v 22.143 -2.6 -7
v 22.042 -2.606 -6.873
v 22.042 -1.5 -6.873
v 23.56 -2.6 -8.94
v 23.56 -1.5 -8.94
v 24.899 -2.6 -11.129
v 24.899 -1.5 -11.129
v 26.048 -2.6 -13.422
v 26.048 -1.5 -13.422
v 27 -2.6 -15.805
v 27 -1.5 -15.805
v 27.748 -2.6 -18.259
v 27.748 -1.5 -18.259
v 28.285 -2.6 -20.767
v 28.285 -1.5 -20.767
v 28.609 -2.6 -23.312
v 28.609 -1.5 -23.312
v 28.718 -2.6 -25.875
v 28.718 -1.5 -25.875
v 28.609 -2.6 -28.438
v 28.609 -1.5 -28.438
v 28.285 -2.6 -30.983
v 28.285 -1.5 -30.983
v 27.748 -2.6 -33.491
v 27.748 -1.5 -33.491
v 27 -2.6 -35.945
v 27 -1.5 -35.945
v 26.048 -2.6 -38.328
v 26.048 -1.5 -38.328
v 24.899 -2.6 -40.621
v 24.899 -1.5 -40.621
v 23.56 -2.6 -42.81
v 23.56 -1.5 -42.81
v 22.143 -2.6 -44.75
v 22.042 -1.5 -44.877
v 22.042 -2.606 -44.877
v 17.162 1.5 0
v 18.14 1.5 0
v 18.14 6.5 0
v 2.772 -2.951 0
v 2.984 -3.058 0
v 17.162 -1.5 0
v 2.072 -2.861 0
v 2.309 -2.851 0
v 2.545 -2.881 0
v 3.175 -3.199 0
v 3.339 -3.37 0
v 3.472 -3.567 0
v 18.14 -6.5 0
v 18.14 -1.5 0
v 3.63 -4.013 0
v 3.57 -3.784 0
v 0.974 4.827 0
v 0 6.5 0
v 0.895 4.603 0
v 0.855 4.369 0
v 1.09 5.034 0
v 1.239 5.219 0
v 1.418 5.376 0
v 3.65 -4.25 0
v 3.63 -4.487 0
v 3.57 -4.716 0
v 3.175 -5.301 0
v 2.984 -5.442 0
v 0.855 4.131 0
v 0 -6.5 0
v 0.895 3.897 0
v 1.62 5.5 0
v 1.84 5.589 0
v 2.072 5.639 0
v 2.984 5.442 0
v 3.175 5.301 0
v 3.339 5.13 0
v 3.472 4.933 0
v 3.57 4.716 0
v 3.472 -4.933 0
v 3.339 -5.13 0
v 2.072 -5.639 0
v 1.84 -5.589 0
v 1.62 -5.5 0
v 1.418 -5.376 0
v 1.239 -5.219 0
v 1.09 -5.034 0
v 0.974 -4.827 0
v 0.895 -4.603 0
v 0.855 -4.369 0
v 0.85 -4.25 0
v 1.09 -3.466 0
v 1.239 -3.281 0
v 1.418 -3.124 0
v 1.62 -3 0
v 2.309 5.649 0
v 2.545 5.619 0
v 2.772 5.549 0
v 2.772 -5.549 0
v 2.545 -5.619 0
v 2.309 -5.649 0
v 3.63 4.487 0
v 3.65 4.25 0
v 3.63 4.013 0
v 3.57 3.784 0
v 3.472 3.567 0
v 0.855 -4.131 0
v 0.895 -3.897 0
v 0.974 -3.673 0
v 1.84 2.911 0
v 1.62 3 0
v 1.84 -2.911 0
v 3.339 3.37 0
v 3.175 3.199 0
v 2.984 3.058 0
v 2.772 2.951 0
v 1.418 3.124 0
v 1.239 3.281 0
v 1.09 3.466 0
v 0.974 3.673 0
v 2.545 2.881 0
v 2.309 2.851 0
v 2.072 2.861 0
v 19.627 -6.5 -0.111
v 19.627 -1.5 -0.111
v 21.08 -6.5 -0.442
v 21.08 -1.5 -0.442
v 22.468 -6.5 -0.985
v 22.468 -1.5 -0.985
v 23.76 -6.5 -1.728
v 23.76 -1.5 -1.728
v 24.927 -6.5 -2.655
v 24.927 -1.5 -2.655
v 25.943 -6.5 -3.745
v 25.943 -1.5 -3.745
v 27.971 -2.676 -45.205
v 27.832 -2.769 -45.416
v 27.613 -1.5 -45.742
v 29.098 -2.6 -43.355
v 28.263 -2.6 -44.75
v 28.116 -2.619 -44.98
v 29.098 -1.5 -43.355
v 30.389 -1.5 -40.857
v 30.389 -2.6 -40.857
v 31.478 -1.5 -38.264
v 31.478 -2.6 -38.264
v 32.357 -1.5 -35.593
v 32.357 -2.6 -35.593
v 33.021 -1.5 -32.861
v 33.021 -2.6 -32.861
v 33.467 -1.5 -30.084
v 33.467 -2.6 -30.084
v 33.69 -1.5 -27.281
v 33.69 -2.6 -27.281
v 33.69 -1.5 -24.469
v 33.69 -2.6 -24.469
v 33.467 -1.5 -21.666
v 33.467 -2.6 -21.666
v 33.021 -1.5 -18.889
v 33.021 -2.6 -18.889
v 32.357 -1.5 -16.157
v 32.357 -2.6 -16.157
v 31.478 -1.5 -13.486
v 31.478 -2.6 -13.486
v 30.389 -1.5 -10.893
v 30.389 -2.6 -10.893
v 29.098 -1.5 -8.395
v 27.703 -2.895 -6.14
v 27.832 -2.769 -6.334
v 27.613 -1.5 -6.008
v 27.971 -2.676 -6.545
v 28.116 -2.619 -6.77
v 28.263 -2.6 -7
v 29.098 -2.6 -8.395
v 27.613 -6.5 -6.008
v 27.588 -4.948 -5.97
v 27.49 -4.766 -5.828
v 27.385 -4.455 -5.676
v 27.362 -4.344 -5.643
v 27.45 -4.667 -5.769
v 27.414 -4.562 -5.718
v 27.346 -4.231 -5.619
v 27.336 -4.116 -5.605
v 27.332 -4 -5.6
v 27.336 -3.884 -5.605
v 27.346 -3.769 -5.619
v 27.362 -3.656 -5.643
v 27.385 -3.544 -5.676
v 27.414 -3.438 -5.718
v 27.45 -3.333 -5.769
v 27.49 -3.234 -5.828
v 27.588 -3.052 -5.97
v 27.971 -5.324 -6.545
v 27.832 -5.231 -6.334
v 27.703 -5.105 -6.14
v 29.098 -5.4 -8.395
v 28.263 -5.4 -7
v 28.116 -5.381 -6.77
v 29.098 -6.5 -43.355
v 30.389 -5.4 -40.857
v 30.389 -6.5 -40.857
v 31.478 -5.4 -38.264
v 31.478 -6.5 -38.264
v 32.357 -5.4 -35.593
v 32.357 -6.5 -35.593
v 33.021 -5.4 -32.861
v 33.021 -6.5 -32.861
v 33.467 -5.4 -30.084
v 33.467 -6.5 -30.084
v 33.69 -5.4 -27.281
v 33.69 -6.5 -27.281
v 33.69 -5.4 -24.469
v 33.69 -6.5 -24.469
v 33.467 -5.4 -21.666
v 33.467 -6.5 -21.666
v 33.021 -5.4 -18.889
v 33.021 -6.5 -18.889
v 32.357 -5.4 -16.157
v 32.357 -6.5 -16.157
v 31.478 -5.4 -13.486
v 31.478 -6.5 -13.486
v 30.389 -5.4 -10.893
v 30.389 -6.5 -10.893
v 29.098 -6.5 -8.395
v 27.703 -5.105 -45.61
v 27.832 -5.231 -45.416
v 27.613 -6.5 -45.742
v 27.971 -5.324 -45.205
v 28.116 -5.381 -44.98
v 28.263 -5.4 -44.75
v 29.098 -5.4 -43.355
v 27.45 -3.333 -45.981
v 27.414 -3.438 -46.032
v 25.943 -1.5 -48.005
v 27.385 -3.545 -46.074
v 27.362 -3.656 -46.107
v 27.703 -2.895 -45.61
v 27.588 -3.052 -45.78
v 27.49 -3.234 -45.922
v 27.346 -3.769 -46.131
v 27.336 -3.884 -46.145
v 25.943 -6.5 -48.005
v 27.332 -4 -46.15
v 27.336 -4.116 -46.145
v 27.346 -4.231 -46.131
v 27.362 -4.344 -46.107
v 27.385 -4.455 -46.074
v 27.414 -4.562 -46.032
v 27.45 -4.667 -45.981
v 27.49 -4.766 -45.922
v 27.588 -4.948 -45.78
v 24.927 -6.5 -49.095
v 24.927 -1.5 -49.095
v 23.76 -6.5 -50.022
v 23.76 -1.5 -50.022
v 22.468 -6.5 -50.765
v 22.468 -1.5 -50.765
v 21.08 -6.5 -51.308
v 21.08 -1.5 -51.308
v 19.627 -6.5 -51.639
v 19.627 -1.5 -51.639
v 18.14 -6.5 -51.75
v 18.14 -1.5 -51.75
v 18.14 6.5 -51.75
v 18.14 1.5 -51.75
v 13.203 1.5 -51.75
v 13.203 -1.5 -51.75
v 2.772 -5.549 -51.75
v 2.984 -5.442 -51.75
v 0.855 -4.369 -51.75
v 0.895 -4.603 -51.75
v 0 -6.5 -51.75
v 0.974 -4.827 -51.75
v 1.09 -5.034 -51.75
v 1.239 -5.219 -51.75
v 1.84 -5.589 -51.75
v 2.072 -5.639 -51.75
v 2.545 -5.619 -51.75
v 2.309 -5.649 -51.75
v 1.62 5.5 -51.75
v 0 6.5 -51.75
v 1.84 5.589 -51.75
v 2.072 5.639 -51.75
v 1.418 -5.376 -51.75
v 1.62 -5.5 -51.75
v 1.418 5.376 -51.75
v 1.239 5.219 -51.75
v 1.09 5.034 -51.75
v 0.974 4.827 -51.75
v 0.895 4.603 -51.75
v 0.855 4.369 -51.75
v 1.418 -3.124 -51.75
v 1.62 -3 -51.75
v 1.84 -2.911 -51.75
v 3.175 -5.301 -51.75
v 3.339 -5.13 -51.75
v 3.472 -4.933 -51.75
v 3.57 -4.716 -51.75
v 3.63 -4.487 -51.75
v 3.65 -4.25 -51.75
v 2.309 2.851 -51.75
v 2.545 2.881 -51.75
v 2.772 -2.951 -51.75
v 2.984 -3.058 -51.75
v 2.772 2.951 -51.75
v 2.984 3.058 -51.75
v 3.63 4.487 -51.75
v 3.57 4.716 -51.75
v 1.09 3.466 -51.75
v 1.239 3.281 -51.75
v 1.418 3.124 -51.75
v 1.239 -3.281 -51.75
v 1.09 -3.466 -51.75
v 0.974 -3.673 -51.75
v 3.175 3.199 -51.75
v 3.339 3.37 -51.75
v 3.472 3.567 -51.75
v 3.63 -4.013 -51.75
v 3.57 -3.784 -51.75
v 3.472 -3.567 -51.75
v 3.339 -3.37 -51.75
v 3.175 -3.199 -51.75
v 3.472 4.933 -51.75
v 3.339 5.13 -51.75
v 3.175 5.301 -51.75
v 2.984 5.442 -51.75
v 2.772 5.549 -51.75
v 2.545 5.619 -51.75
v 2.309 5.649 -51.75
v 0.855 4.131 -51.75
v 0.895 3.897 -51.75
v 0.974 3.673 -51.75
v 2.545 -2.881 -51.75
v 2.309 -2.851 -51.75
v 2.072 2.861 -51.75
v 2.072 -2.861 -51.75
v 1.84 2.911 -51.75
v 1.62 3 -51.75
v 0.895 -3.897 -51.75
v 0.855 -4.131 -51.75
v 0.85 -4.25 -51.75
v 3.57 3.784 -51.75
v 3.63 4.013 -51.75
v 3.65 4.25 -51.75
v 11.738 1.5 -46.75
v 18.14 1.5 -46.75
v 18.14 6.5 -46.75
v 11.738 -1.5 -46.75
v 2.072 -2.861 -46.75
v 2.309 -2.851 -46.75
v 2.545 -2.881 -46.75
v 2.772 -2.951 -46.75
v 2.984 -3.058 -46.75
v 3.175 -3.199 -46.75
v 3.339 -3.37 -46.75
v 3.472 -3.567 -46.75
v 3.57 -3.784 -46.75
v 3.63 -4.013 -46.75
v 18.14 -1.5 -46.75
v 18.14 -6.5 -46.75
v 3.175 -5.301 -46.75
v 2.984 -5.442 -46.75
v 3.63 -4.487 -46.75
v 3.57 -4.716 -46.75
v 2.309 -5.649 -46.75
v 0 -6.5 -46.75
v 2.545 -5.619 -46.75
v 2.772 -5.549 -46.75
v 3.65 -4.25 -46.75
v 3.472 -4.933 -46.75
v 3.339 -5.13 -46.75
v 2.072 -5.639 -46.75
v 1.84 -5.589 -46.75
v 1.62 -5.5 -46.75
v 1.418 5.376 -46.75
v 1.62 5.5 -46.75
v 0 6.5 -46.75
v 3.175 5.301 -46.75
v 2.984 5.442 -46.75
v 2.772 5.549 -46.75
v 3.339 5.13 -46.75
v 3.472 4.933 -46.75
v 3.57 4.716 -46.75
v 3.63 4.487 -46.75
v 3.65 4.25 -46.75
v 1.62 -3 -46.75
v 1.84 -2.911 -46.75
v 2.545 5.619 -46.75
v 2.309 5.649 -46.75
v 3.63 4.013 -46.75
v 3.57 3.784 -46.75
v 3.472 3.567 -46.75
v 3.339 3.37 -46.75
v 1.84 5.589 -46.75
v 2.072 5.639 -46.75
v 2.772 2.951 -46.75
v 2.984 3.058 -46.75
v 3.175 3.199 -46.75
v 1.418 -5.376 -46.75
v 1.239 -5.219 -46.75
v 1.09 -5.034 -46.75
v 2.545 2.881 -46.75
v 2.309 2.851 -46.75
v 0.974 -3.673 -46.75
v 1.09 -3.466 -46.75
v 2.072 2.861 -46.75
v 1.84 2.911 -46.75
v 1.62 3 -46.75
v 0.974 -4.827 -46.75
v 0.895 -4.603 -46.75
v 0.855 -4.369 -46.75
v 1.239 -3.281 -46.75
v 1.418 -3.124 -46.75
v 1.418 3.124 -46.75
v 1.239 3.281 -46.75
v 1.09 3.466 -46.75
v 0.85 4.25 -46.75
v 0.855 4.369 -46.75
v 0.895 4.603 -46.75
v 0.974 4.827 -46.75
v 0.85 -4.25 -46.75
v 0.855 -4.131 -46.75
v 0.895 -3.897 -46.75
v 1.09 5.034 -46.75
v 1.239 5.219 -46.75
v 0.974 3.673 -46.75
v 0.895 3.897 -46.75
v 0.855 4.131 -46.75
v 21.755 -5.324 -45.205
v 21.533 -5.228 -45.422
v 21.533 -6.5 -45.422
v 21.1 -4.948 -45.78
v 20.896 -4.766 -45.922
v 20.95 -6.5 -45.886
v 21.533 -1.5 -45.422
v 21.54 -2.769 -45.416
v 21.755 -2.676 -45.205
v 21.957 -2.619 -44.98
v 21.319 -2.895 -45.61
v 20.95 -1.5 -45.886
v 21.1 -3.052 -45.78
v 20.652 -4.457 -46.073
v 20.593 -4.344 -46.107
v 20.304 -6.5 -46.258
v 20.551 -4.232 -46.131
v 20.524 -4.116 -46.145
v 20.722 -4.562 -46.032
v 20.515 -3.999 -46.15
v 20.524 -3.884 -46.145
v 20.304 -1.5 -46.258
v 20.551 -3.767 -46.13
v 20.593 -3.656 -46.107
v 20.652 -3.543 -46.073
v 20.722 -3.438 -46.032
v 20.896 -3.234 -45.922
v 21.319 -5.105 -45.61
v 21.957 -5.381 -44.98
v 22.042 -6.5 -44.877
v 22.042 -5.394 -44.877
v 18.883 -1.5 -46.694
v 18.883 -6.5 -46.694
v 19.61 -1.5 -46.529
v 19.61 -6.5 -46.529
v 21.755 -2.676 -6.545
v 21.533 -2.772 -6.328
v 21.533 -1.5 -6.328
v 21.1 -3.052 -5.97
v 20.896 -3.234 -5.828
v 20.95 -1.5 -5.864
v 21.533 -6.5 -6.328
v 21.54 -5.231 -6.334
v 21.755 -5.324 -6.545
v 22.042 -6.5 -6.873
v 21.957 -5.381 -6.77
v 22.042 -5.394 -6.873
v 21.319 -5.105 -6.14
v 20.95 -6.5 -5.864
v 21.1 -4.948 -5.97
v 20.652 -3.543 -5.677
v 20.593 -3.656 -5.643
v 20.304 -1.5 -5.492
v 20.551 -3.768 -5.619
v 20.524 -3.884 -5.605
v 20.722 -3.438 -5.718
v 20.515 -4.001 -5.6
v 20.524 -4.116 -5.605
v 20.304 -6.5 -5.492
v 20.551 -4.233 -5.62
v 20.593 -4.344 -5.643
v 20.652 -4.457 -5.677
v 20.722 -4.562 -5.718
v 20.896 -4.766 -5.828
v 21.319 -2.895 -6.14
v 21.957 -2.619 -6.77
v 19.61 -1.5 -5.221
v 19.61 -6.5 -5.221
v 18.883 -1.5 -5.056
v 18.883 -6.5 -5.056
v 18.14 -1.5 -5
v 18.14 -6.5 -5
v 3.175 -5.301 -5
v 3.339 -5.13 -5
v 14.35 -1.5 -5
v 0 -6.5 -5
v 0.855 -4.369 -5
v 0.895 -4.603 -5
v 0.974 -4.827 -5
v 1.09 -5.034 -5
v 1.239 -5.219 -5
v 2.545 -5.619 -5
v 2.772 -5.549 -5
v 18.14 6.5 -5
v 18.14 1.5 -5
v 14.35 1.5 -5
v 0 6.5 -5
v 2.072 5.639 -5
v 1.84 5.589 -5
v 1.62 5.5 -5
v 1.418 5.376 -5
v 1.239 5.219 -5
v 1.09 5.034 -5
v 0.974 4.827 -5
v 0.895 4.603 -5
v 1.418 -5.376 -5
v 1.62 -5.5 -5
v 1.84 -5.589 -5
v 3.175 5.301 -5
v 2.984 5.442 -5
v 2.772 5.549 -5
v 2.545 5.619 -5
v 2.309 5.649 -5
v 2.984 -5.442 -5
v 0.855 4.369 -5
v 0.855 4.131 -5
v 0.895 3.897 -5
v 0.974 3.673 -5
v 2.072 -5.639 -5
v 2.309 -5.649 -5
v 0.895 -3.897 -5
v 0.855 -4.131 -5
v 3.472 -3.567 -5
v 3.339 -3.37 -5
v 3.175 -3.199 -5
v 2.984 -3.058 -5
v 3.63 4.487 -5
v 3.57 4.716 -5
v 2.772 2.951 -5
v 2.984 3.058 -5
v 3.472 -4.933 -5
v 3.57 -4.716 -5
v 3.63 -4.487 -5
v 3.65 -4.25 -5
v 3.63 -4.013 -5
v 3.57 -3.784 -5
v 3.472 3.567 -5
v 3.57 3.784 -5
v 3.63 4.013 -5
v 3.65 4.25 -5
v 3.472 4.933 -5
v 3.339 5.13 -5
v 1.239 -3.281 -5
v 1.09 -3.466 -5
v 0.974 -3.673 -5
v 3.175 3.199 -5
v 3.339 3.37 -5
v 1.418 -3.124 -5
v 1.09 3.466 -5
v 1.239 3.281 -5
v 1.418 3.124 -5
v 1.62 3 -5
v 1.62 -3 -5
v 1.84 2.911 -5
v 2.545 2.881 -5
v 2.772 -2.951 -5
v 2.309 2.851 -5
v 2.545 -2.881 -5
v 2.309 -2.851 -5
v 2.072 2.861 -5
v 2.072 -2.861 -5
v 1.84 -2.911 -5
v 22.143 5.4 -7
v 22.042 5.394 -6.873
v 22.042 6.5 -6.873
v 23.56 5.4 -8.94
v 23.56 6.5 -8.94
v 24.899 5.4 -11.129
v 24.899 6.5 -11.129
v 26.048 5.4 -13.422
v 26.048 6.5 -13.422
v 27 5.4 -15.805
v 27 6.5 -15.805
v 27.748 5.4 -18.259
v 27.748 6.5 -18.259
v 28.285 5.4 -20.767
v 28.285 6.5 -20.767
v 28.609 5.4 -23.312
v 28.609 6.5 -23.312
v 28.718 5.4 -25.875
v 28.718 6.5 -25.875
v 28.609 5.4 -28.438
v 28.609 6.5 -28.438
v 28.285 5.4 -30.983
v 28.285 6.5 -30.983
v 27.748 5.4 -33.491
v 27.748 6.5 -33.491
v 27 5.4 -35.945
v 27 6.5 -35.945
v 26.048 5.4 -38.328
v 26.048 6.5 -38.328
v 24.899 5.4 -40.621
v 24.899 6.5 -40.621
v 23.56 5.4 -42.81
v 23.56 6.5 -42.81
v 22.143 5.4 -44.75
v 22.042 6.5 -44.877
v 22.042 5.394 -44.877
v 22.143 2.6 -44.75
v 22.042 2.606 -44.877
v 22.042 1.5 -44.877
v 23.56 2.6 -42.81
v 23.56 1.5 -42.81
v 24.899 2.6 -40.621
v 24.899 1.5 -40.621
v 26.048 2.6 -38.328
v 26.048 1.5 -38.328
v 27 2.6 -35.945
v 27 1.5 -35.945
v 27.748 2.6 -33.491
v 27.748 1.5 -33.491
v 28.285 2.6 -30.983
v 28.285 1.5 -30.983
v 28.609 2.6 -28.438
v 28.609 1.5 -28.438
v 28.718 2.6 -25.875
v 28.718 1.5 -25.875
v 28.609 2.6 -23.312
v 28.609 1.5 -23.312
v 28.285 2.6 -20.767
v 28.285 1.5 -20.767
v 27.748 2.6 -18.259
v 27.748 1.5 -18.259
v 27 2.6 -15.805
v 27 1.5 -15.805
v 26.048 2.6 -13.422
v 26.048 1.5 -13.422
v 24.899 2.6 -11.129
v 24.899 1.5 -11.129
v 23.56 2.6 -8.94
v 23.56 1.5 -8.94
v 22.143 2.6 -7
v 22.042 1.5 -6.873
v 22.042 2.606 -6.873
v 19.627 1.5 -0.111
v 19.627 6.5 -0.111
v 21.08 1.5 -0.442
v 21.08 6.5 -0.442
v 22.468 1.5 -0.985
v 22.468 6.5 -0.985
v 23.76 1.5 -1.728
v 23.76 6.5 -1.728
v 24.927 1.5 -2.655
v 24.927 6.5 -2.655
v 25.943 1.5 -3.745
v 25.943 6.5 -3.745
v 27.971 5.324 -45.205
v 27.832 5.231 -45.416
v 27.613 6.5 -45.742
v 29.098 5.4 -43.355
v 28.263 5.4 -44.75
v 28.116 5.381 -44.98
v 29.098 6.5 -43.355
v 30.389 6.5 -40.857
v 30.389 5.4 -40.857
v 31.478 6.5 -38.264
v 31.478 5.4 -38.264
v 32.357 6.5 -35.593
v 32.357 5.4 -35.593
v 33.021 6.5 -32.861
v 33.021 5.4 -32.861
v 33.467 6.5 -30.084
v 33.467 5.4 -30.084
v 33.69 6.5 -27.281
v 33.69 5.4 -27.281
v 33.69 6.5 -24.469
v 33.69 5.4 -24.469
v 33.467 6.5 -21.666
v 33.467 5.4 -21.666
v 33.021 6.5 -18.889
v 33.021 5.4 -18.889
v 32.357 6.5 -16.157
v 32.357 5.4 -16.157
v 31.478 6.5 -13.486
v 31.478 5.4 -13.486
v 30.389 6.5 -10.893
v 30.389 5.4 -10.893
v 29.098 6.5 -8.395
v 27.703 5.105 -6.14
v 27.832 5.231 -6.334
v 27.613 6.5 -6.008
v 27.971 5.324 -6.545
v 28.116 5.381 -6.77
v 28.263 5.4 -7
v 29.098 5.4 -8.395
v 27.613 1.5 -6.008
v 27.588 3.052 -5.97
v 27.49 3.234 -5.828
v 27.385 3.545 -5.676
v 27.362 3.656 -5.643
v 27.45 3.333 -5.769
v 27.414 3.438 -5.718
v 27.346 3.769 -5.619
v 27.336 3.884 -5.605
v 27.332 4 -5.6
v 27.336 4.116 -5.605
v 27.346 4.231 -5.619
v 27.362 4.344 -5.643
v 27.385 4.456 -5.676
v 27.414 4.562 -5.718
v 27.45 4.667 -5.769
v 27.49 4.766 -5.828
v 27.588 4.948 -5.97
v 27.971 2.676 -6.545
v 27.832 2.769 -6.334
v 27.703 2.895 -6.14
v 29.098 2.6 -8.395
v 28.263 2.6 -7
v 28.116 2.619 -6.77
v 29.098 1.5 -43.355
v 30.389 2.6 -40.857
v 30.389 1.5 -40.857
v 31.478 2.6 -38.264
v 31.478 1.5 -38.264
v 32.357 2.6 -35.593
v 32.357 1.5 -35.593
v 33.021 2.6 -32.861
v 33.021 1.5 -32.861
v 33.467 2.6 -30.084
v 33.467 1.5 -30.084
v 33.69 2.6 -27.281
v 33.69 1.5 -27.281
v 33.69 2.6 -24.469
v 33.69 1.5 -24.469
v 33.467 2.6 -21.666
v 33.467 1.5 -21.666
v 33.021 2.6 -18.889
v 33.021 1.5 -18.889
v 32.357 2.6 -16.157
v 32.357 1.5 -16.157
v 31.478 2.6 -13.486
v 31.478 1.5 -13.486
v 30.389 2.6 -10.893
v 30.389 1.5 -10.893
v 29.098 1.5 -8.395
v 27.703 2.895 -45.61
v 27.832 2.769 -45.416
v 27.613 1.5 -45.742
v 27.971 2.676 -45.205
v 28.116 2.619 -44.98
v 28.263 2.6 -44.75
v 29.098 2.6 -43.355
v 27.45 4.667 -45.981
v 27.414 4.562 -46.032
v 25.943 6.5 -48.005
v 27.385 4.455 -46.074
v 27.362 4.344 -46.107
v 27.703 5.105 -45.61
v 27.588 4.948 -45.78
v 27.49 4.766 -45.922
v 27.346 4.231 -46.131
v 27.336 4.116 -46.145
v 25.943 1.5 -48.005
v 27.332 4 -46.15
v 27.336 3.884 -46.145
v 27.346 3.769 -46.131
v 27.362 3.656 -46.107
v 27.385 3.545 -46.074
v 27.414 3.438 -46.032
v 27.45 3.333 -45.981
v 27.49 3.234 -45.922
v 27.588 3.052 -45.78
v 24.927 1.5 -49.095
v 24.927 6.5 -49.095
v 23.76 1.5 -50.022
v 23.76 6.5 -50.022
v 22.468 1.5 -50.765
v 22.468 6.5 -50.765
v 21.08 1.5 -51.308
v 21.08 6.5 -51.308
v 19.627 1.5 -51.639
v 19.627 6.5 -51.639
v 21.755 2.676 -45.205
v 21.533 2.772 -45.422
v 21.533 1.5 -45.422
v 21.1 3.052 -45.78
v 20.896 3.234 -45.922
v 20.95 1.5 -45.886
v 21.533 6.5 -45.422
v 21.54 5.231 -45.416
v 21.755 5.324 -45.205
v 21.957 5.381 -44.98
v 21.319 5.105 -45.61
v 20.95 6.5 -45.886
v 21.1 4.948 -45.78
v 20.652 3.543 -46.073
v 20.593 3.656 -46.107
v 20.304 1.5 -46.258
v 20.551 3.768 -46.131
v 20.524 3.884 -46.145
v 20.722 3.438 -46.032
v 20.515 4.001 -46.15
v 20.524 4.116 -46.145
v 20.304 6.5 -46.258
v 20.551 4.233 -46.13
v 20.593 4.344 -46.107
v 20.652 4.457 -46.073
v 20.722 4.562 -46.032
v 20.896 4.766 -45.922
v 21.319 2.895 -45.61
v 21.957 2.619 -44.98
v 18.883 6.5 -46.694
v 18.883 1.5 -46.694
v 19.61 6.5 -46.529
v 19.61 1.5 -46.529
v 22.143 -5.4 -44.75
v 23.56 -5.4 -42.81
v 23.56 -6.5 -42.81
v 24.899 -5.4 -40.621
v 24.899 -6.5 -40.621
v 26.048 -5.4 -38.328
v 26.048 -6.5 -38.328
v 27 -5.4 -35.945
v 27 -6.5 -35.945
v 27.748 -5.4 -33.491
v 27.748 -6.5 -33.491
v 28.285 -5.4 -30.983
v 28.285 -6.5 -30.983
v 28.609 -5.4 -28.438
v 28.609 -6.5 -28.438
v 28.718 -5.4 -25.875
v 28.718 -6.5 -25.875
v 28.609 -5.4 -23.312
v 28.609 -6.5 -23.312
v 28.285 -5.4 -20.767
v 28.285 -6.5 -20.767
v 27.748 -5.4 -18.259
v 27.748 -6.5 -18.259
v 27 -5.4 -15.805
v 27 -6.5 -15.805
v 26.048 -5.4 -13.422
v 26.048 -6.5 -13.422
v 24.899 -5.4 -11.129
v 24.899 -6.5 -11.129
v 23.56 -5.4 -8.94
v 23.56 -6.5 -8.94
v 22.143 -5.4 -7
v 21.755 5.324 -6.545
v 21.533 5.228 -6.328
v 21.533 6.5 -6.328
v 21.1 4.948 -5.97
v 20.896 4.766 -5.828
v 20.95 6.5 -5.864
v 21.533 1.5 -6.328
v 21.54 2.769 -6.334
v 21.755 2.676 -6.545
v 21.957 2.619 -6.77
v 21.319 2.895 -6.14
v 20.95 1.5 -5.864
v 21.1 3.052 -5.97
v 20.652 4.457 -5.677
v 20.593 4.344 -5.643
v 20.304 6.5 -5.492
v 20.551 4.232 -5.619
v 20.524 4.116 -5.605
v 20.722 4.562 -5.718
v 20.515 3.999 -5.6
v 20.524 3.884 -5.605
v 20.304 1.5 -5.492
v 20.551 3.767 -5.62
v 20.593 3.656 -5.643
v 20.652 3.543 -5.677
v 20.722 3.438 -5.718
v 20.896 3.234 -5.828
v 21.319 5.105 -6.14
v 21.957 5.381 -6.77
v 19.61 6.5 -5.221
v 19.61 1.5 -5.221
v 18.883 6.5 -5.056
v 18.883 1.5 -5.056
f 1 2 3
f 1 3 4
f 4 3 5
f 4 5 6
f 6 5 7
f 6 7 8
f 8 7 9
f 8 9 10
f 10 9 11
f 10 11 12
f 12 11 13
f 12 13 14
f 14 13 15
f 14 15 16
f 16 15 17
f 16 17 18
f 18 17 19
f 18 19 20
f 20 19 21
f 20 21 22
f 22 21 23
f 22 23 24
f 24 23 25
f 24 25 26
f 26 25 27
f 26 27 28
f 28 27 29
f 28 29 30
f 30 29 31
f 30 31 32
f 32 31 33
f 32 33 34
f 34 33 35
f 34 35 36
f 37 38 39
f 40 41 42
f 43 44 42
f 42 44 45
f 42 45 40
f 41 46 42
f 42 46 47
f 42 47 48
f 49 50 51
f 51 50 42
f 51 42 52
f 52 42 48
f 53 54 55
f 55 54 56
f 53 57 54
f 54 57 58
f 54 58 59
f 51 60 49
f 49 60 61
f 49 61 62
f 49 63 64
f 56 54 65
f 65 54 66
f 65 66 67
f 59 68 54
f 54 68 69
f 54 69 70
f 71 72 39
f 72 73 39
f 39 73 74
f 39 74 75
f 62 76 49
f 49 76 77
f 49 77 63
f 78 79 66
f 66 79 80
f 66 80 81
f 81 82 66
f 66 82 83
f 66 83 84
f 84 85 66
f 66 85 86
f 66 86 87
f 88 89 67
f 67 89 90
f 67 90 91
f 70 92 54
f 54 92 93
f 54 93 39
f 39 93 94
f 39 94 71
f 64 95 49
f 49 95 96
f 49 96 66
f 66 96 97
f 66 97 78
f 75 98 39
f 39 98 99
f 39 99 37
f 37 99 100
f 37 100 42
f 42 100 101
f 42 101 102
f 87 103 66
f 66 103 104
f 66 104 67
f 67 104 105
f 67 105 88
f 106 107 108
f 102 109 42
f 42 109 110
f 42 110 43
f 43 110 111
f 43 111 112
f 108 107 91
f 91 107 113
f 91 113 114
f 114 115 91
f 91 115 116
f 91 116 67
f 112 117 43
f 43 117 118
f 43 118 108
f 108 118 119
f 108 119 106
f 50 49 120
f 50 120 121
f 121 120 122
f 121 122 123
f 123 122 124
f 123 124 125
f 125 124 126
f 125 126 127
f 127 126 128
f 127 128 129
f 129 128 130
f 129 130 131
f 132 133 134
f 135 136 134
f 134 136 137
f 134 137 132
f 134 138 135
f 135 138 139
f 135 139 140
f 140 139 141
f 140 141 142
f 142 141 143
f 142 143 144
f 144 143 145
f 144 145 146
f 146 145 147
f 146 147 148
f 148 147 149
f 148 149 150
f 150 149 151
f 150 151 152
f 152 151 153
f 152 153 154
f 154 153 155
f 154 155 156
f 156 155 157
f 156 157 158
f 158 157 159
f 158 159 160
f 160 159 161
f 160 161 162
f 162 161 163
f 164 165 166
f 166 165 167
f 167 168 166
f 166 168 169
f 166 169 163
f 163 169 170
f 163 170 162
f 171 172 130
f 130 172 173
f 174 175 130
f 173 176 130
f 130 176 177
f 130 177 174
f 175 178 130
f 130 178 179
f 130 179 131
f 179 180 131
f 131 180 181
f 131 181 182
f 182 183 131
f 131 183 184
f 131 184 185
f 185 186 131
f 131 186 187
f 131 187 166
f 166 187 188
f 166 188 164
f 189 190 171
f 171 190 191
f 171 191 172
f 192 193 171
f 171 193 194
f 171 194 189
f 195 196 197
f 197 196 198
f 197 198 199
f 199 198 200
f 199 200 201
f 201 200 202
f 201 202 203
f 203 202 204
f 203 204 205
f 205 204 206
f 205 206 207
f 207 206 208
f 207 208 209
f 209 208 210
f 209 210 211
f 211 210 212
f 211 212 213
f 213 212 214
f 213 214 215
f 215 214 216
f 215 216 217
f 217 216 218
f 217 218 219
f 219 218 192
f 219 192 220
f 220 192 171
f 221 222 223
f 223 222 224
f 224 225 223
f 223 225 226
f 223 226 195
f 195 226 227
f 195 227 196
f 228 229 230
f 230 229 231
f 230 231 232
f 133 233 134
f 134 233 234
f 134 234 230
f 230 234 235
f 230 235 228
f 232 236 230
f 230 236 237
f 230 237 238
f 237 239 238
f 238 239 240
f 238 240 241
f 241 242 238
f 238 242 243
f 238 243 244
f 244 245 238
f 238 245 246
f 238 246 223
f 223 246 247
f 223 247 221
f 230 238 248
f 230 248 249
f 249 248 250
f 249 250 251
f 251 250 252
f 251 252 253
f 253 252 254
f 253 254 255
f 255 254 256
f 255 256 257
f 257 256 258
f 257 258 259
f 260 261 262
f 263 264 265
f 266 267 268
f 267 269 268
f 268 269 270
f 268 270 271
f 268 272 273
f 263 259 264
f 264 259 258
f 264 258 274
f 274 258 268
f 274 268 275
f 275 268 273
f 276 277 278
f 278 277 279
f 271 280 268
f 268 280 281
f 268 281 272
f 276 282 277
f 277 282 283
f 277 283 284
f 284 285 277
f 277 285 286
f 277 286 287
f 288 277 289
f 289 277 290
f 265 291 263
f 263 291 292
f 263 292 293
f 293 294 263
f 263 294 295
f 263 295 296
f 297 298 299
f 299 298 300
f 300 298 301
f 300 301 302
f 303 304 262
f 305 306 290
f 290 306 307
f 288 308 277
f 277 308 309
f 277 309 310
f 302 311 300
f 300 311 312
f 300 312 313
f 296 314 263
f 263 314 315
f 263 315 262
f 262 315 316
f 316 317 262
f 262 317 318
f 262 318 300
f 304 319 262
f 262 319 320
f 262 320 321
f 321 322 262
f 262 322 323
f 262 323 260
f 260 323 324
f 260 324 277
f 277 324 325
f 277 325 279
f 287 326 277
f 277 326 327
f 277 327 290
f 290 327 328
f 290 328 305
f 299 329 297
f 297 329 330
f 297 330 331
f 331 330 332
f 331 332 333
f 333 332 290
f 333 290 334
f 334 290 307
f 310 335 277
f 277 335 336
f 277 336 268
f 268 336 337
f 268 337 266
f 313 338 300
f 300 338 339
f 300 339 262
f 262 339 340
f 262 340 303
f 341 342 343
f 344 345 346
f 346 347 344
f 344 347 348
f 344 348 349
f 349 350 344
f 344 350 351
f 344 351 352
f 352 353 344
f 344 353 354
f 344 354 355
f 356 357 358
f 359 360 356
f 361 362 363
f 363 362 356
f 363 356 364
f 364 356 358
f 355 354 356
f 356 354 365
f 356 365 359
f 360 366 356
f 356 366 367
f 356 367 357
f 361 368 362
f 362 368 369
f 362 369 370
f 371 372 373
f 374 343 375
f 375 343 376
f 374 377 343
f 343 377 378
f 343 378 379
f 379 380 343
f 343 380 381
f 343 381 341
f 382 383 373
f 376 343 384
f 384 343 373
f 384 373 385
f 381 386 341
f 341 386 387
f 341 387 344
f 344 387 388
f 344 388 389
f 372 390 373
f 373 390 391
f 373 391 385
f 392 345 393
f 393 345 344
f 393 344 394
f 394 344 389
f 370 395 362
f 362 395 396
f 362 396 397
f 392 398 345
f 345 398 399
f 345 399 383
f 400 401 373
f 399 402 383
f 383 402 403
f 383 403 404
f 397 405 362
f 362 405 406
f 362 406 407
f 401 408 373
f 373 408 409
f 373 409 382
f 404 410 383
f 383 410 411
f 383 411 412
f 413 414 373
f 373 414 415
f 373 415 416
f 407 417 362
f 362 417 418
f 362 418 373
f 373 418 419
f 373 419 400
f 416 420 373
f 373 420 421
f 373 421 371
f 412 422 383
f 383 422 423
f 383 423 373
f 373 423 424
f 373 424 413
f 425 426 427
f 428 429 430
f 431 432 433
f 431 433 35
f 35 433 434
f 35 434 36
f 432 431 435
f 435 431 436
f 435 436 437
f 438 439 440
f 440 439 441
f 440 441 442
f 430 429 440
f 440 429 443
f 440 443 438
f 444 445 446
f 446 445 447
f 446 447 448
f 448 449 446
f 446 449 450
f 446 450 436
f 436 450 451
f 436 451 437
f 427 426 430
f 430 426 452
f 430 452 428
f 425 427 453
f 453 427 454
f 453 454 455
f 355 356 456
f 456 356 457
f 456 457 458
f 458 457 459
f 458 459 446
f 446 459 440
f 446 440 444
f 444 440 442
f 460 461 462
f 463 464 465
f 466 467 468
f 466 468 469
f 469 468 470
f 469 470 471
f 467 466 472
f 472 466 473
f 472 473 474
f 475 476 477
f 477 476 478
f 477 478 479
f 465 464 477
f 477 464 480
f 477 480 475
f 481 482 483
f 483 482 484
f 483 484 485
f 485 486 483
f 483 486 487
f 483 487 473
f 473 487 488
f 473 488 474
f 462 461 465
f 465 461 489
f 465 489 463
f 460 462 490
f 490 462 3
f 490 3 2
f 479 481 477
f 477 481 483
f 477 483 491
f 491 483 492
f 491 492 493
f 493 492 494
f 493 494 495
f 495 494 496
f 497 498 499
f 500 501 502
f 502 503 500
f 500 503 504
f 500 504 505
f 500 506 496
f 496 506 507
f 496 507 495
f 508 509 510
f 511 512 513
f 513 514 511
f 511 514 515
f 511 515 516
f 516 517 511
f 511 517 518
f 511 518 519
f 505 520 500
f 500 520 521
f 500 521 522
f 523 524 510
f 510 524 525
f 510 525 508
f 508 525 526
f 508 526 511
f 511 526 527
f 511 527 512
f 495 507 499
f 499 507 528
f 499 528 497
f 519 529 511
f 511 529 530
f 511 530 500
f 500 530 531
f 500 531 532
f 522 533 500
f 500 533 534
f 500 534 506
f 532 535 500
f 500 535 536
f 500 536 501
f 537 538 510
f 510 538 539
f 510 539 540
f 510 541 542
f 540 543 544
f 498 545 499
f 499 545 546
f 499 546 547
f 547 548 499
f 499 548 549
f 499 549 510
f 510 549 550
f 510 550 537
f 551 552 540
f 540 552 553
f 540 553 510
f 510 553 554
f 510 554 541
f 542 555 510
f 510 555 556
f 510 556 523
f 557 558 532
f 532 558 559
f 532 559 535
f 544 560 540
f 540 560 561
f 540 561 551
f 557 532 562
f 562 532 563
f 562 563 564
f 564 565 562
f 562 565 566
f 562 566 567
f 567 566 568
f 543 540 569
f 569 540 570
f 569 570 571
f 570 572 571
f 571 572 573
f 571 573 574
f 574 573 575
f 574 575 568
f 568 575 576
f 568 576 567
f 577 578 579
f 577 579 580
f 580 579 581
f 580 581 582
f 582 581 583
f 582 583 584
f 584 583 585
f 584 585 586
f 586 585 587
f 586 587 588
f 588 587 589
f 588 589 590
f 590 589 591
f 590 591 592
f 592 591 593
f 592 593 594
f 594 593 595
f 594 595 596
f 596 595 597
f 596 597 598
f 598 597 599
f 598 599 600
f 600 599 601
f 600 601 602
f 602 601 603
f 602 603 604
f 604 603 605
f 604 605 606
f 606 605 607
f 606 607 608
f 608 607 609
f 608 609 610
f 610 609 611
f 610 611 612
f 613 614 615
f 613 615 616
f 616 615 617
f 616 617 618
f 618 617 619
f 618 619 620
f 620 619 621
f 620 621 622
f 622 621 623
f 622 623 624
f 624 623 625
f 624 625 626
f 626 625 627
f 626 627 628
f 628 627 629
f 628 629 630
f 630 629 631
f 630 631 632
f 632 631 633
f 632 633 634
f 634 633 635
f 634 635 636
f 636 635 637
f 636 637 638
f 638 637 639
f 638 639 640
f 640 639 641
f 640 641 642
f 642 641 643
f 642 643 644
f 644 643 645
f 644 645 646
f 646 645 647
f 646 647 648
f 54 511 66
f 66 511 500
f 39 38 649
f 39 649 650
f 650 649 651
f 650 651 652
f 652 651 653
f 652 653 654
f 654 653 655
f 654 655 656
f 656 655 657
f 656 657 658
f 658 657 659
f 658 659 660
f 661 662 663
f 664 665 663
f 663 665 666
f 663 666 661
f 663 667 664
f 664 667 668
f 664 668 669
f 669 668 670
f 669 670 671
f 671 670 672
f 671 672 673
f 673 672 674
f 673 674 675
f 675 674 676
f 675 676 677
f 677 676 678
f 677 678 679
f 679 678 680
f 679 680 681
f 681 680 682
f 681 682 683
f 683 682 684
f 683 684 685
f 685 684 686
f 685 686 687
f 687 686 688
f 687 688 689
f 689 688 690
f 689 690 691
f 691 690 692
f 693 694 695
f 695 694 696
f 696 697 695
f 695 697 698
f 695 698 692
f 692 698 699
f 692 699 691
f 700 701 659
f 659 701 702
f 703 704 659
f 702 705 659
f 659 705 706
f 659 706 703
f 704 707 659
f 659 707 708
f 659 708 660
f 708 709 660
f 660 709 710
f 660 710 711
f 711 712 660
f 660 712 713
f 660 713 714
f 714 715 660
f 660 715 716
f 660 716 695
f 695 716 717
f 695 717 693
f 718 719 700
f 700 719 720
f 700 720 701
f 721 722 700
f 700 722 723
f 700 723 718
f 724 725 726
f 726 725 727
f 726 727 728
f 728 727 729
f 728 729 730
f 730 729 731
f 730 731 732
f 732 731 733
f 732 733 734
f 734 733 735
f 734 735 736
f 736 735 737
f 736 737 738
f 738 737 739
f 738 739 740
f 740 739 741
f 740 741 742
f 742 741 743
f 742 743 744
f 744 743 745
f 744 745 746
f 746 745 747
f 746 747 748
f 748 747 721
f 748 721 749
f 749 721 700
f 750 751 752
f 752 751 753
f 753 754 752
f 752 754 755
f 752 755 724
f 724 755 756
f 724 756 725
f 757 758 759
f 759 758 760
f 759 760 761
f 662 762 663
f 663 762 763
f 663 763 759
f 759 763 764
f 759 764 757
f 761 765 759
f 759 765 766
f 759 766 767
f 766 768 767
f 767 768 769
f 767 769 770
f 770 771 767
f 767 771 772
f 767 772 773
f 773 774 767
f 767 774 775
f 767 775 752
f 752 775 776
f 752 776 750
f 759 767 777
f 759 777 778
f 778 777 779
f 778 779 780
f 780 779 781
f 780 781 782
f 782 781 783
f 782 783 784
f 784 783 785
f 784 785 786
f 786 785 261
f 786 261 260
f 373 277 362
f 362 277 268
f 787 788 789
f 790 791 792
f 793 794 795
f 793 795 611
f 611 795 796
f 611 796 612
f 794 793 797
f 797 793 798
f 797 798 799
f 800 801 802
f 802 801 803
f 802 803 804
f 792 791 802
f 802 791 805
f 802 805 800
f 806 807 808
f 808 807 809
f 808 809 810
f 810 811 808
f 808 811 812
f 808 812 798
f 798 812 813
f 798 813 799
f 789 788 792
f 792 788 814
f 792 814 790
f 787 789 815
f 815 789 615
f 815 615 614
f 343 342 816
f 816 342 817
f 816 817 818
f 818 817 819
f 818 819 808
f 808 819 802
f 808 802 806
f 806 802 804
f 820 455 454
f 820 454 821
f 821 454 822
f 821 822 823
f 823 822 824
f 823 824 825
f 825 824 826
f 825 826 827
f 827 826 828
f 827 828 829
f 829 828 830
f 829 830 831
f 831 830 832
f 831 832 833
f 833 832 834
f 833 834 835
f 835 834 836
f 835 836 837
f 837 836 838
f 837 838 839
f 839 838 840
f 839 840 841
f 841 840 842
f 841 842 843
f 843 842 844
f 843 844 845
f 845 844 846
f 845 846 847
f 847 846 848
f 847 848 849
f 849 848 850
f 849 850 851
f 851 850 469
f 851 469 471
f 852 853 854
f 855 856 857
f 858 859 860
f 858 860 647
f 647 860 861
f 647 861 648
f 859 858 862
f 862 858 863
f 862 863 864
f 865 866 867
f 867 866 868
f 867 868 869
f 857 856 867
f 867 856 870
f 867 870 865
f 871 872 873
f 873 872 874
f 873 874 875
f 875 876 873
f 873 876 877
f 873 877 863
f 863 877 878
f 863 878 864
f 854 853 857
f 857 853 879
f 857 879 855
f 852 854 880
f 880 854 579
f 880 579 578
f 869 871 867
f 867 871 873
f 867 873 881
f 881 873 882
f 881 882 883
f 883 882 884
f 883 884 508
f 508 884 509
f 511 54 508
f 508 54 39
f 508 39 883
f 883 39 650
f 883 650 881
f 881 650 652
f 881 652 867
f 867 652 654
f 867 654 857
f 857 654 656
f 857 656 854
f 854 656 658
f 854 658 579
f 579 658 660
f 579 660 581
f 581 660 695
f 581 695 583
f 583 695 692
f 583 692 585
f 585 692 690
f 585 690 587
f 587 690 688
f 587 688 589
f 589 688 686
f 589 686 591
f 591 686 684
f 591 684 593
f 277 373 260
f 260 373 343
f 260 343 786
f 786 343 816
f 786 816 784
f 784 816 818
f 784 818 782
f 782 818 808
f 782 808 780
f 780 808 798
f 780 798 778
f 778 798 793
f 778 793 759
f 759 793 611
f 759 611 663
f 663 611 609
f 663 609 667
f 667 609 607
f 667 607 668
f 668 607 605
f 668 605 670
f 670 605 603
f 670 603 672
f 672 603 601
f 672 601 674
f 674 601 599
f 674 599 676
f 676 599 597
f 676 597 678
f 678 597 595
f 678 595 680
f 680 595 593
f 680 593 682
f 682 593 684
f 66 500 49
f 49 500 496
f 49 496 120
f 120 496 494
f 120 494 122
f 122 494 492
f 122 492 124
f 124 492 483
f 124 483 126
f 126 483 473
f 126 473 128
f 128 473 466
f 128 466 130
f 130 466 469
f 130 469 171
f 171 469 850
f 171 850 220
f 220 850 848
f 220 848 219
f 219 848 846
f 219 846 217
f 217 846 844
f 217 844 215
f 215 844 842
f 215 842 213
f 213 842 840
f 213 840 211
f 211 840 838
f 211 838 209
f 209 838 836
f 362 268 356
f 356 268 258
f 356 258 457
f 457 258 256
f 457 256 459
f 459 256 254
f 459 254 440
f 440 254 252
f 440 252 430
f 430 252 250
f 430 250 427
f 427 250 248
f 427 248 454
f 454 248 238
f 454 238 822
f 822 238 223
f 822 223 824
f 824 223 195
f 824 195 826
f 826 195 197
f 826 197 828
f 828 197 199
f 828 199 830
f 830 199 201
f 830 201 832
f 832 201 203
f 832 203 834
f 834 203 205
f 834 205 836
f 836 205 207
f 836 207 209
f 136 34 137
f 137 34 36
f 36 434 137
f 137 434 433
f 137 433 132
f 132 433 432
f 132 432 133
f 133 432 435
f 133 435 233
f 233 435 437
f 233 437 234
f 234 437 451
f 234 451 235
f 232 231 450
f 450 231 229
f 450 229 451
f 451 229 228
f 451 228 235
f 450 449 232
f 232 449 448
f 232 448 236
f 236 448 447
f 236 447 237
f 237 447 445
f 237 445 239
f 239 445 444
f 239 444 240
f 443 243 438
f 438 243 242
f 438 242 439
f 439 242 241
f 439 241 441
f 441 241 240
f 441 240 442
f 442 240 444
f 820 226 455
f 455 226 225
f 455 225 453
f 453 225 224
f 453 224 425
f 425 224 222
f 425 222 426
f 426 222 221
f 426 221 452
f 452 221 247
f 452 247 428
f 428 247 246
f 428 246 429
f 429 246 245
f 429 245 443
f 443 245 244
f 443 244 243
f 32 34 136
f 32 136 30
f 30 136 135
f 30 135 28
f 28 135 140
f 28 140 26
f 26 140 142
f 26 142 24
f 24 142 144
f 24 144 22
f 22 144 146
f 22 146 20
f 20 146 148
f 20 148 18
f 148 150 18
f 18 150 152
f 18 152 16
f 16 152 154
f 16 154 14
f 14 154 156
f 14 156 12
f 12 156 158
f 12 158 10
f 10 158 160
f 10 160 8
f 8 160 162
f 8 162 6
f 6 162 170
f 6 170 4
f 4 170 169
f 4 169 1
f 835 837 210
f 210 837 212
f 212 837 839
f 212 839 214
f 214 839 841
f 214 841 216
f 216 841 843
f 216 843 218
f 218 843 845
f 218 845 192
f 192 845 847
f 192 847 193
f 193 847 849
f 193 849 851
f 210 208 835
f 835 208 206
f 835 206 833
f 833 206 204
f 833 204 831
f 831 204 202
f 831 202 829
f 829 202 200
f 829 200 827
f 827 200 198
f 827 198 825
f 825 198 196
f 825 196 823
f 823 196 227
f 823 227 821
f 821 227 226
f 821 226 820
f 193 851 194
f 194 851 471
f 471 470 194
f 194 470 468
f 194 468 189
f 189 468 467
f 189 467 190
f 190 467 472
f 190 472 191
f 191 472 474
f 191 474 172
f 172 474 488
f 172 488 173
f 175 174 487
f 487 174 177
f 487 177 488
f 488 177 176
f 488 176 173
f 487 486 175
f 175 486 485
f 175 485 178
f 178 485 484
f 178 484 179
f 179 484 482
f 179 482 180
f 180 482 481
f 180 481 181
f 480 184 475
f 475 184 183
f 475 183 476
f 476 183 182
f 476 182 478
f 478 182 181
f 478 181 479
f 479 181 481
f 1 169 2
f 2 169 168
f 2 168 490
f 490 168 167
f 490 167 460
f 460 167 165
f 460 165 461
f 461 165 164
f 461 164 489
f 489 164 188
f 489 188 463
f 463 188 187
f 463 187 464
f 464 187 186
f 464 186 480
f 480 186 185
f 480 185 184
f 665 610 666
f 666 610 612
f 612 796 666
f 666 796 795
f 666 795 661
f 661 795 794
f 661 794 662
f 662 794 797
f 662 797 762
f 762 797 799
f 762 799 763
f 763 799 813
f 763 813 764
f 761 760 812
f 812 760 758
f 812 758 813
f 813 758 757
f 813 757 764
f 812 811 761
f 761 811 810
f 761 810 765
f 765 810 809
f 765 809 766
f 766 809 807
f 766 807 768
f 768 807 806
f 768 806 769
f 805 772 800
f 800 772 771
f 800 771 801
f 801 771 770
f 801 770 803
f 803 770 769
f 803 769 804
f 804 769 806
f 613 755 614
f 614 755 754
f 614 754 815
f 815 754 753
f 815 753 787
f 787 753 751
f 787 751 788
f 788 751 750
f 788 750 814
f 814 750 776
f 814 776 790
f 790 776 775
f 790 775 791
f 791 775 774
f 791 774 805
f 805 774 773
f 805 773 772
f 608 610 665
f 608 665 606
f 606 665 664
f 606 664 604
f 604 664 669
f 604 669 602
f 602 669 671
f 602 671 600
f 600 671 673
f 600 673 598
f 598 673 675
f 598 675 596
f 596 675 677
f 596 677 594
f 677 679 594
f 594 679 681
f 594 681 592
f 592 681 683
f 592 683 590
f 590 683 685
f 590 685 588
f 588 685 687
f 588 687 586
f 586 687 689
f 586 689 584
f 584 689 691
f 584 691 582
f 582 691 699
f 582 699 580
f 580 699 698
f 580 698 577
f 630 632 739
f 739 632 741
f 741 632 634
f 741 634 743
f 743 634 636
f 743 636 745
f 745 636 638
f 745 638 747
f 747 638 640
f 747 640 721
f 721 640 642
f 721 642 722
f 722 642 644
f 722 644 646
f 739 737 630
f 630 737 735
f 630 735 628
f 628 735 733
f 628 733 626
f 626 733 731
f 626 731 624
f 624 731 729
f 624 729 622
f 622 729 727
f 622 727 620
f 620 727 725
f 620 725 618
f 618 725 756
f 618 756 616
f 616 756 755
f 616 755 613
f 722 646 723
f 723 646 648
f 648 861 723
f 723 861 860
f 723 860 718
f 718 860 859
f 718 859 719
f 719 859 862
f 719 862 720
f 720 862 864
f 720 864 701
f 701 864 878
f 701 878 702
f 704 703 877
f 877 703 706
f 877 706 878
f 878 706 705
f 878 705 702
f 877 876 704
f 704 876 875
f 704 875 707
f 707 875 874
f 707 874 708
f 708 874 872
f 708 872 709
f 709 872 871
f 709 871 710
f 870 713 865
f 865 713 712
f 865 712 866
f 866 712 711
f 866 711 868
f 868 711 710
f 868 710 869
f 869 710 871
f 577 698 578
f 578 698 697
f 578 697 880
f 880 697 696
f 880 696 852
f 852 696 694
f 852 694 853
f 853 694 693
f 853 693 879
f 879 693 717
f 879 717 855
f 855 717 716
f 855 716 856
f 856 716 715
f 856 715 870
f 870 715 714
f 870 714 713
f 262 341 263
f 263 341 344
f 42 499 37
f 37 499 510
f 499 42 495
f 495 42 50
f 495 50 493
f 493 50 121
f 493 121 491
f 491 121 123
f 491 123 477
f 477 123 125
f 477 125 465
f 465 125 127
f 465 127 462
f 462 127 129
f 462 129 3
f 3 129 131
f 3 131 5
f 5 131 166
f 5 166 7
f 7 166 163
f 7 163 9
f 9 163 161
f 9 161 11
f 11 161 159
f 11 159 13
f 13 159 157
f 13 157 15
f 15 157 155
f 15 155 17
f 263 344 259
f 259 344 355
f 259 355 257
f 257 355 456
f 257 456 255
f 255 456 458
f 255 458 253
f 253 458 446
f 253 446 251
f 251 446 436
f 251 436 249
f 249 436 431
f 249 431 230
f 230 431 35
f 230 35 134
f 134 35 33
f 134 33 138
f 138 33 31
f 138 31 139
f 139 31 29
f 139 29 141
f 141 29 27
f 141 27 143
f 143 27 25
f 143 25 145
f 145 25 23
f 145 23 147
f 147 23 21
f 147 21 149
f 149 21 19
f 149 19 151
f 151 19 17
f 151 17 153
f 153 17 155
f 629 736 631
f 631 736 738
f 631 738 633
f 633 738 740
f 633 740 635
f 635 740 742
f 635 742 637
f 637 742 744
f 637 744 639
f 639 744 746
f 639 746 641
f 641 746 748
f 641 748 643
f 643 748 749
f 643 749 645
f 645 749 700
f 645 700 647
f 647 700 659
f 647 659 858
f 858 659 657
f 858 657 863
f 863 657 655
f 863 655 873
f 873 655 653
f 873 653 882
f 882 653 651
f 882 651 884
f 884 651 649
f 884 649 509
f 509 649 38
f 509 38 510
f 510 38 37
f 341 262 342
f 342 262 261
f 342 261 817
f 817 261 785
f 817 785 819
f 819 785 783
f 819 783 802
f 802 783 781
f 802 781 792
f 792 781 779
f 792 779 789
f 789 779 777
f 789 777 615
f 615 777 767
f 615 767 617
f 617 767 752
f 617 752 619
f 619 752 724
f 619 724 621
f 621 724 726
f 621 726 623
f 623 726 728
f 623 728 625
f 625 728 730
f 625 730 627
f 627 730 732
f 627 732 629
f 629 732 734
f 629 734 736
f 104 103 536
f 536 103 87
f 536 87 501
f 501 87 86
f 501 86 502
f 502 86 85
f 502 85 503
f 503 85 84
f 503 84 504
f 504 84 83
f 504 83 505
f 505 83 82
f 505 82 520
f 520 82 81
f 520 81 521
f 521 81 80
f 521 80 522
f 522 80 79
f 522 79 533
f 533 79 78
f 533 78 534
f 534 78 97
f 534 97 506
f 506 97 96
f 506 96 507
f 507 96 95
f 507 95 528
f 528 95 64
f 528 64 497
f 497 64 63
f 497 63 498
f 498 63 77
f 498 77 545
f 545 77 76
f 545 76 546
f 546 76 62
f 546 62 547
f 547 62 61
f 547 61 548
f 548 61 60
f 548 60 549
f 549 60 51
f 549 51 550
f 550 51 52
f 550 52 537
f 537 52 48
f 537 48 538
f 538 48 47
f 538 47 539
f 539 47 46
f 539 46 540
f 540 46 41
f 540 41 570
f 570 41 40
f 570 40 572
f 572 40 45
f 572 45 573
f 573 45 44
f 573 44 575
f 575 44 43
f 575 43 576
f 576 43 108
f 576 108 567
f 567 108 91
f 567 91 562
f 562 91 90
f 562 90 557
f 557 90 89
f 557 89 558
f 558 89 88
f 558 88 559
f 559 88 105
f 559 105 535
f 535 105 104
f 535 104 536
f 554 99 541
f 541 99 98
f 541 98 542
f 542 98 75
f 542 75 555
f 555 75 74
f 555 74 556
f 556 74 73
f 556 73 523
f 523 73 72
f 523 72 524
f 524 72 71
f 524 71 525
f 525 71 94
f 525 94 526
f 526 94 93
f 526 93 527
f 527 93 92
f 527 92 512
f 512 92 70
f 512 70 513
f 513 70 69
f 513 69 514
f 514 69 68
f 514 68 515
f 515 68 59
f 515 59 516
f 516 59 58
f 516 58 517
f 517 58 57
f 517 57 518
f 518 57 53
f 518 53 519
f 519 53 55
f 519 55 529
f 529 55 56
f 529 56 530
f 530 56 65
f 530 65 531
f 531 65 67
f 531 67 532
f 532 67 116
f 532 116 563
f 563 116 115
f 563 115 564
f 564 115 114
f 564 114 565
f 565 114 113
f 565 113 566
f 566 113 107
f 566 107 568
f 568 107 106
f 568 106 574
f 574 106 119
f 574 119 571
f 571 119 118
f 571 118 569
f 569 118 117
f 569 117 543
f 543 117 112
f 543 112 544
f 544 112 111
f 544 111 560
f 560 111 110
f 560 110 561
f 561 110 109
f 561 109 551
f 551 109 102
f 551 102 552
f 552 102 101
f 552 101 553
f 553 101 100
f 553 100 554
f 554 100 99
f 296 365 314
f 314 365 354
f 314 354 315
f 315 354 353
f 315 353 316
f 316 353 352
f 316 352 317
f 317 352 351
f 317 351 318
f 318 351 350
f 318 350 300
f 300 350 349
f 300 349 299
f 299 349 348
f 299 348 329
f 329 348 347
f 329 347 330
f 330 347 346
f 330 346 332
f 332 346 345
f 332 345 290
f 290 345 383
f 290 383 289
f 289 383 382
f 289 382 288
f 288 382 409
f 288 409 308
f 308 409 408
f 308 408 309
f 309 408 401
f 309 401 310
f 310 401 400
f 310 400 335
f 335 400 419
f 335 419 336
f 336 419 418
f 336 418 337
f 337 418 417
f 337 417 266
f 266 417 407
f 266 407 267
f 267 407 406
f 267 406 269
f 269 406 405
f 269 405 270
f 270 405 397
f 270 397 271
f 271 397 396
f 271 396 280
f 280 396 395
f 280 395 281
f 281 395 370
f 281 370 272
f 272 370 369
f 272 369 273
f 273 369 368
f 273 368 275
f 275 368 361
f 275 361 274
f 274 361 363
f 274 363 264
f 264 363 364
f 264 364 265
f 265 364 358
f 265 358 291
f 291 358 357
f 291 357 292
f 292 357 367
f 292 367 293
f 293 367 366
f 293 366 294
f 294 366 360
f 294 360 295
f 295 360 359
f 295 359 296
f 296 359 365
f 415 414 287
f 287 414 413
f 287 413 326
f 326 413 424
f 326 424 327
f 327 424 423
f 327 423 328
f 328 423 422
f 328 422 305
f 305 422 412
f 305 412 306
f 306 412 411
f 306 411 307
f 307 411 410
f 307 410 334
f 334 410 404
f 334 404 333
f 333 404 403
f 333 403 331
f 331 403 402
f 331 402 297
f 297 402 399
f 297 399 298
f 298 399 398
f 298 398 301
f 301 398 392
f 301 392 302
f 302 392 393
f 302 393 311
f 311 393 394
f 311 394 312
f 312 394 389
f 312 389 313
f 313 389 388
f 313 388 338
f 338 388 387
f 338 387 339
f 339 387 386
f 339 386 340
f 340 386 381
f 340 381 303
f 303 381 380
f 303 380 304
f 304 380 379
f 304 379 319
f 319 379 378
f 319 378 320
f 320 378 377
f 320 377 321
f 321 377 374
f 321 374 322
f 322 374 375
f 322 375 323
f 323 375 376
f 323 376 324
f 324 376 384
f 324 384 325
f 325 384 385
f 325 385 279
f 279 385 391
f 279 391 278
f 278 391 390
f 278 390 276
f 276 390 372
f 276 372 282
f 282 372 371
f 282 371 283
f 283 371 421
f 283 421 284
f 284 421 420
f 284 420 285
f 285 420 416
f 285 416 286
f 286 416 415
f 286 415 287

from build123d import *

# Parameters (mm, degrees)
RESSALTO_EXTRUS_O1_DEPTH   = 6.5
CORTE_EXTRUS_O1_DEPTH      = 34.71775564
CORTE_EXTRUS_O2_START      = -6.5
CORTE_EXTRUS_O2_DEPTH      = 1.5
ESBO_O5_R                  = 1.4
CORTE_EXTRUS_O3_DEPTH      = 47.75
CORTE_EXTRUS_O3_DEPTH_BACK = 6


with BuildPart() as part:
    # Esboço1 → Ressalto-extrusão1 (new body, symmetric)
    with BuildSketch(Plane(origin=(0, 0, 0), x_dir=(1, 0, 0), z_dir=(0, 1, 0))):
        with BuildLine():
            Line((0, 51.75), (18.140349372, 51.75))
            ThreePointArc((18.140349372, 51.75), (22.467809892, 50.765158648), (25.942897998, 48.004617089))
            ThreePointArc((25.942897998, 48.004617089), (33.71775564, 25.875), (25.942897998, 3.745382911))
            ThreePointArc((25.942897998, 3.745382911), (22.467809892, 0.984841352), (18.140349372, 0))
            Line((18.140349372, 0), (0, 0))
            Line((0, 0), (0, 5))
            Line((0, 5), (18.140349372, 5))
            ThreePointArc((18.140349372, 5), (20.304079632, 5.492420676), (22.041623685, 6.872691455))
            ThreePointArc((22.041623685, 6.872691455), (28.71775564, 25.875), (22.041623685, 44.877308545))
            ThreePointArc((22.041623685, 44.877308545), (20.304079632, 46.257579324), (18.140349372, 46.75))
            Line((18.140349372, 46.75), (0, 46.75))
            Line((0, 46.75), (0, 51.75))
        make_face()
    extrude(amount=RESSALTO_EXTRUS_O1_DEPTH, both=True)

    # Esboço2 → Corte-extrusão1 (cut, through all)
    with BuildSketch(Plane.ZY):
        with BuildLine():
            Line((-44.75, 2.6), (-7, 2.6))
            ThreePointArc((-7, 2.6), (-5.6, 4), (-7, 5.4))
            Line((-7, 5.4), (-44.75, 5.4))
            ThreePointArc((-44.75, 5.4), (-46.15, 4), (-44.75, 2.6))
        make_face()
        with BuildLine():
            Line((-44.75, -5.4), (-7, -5.4))
            ThreePointArc((-7, -5.4), (-5.6, -4), (-7, -2.6))
            Line((-7, -2.6), (-44.75, -2.6))
            ThreePointArc((-44.75, -2.6), (-46.15, -4), (-44.75, -5.4))
        make_face()
    extrude(amount=-CORTE_EXTRUS_O1_DEPTH, mode=Mode.SUBTRACT)

    # Esboço4 → Corte-extrusão2 (cut, symmetric)
    with BuildSketch(Plane(origin=(0, 6.5, 0), x_dir=(1, 0, 0), z_dir=(0, 1, 0)).offset(CORTE_EXTRUS_O2_START)):
        with BuildLine():
            Line((8.48, 35.63), (13.203313178, 51.75))
            Line((13.203313178, 51.75), (33.71775564, 51.75))
            Line((33.71775564, 51.75), (33.71775564, 0))
            Line((33.71775564, 0), (17.161678374, 0))
            Line((17.161678374, 0), (11.37, 10.3))
            ThreePointArc((11.37, 10.3), (7.366682193, 22.673111391), (8.48, 35.63))
        make_face()
    extrude(amount=CORTE_EXTRUS_O2_DEPTH, both=True, mode=Mode.SUBTRACT)

    # Esboço5 → Corte-extrusão3 (cut, two sides)
    with BuildSketch(Plane.XY.offset(-46.75)) as corte_extrus_o3_sk:
        with Locations((2.25, 4.25)):
            Circle(ESBO_O5_R)
        with Locations((2.25, -4.25)):
            Circle(ESBO_O5_R)
    extrude(amount=CORTE_EXTRUS_O3_DEPTH, mode=Mode.SUBTRACT)
    extrude(corte_extrus_o3_sk.sketch, amount=-CORTE_EXTRUS_O3_DEPTH_BACK, mode=Mode.SUBTRACT)


solid = part.part
